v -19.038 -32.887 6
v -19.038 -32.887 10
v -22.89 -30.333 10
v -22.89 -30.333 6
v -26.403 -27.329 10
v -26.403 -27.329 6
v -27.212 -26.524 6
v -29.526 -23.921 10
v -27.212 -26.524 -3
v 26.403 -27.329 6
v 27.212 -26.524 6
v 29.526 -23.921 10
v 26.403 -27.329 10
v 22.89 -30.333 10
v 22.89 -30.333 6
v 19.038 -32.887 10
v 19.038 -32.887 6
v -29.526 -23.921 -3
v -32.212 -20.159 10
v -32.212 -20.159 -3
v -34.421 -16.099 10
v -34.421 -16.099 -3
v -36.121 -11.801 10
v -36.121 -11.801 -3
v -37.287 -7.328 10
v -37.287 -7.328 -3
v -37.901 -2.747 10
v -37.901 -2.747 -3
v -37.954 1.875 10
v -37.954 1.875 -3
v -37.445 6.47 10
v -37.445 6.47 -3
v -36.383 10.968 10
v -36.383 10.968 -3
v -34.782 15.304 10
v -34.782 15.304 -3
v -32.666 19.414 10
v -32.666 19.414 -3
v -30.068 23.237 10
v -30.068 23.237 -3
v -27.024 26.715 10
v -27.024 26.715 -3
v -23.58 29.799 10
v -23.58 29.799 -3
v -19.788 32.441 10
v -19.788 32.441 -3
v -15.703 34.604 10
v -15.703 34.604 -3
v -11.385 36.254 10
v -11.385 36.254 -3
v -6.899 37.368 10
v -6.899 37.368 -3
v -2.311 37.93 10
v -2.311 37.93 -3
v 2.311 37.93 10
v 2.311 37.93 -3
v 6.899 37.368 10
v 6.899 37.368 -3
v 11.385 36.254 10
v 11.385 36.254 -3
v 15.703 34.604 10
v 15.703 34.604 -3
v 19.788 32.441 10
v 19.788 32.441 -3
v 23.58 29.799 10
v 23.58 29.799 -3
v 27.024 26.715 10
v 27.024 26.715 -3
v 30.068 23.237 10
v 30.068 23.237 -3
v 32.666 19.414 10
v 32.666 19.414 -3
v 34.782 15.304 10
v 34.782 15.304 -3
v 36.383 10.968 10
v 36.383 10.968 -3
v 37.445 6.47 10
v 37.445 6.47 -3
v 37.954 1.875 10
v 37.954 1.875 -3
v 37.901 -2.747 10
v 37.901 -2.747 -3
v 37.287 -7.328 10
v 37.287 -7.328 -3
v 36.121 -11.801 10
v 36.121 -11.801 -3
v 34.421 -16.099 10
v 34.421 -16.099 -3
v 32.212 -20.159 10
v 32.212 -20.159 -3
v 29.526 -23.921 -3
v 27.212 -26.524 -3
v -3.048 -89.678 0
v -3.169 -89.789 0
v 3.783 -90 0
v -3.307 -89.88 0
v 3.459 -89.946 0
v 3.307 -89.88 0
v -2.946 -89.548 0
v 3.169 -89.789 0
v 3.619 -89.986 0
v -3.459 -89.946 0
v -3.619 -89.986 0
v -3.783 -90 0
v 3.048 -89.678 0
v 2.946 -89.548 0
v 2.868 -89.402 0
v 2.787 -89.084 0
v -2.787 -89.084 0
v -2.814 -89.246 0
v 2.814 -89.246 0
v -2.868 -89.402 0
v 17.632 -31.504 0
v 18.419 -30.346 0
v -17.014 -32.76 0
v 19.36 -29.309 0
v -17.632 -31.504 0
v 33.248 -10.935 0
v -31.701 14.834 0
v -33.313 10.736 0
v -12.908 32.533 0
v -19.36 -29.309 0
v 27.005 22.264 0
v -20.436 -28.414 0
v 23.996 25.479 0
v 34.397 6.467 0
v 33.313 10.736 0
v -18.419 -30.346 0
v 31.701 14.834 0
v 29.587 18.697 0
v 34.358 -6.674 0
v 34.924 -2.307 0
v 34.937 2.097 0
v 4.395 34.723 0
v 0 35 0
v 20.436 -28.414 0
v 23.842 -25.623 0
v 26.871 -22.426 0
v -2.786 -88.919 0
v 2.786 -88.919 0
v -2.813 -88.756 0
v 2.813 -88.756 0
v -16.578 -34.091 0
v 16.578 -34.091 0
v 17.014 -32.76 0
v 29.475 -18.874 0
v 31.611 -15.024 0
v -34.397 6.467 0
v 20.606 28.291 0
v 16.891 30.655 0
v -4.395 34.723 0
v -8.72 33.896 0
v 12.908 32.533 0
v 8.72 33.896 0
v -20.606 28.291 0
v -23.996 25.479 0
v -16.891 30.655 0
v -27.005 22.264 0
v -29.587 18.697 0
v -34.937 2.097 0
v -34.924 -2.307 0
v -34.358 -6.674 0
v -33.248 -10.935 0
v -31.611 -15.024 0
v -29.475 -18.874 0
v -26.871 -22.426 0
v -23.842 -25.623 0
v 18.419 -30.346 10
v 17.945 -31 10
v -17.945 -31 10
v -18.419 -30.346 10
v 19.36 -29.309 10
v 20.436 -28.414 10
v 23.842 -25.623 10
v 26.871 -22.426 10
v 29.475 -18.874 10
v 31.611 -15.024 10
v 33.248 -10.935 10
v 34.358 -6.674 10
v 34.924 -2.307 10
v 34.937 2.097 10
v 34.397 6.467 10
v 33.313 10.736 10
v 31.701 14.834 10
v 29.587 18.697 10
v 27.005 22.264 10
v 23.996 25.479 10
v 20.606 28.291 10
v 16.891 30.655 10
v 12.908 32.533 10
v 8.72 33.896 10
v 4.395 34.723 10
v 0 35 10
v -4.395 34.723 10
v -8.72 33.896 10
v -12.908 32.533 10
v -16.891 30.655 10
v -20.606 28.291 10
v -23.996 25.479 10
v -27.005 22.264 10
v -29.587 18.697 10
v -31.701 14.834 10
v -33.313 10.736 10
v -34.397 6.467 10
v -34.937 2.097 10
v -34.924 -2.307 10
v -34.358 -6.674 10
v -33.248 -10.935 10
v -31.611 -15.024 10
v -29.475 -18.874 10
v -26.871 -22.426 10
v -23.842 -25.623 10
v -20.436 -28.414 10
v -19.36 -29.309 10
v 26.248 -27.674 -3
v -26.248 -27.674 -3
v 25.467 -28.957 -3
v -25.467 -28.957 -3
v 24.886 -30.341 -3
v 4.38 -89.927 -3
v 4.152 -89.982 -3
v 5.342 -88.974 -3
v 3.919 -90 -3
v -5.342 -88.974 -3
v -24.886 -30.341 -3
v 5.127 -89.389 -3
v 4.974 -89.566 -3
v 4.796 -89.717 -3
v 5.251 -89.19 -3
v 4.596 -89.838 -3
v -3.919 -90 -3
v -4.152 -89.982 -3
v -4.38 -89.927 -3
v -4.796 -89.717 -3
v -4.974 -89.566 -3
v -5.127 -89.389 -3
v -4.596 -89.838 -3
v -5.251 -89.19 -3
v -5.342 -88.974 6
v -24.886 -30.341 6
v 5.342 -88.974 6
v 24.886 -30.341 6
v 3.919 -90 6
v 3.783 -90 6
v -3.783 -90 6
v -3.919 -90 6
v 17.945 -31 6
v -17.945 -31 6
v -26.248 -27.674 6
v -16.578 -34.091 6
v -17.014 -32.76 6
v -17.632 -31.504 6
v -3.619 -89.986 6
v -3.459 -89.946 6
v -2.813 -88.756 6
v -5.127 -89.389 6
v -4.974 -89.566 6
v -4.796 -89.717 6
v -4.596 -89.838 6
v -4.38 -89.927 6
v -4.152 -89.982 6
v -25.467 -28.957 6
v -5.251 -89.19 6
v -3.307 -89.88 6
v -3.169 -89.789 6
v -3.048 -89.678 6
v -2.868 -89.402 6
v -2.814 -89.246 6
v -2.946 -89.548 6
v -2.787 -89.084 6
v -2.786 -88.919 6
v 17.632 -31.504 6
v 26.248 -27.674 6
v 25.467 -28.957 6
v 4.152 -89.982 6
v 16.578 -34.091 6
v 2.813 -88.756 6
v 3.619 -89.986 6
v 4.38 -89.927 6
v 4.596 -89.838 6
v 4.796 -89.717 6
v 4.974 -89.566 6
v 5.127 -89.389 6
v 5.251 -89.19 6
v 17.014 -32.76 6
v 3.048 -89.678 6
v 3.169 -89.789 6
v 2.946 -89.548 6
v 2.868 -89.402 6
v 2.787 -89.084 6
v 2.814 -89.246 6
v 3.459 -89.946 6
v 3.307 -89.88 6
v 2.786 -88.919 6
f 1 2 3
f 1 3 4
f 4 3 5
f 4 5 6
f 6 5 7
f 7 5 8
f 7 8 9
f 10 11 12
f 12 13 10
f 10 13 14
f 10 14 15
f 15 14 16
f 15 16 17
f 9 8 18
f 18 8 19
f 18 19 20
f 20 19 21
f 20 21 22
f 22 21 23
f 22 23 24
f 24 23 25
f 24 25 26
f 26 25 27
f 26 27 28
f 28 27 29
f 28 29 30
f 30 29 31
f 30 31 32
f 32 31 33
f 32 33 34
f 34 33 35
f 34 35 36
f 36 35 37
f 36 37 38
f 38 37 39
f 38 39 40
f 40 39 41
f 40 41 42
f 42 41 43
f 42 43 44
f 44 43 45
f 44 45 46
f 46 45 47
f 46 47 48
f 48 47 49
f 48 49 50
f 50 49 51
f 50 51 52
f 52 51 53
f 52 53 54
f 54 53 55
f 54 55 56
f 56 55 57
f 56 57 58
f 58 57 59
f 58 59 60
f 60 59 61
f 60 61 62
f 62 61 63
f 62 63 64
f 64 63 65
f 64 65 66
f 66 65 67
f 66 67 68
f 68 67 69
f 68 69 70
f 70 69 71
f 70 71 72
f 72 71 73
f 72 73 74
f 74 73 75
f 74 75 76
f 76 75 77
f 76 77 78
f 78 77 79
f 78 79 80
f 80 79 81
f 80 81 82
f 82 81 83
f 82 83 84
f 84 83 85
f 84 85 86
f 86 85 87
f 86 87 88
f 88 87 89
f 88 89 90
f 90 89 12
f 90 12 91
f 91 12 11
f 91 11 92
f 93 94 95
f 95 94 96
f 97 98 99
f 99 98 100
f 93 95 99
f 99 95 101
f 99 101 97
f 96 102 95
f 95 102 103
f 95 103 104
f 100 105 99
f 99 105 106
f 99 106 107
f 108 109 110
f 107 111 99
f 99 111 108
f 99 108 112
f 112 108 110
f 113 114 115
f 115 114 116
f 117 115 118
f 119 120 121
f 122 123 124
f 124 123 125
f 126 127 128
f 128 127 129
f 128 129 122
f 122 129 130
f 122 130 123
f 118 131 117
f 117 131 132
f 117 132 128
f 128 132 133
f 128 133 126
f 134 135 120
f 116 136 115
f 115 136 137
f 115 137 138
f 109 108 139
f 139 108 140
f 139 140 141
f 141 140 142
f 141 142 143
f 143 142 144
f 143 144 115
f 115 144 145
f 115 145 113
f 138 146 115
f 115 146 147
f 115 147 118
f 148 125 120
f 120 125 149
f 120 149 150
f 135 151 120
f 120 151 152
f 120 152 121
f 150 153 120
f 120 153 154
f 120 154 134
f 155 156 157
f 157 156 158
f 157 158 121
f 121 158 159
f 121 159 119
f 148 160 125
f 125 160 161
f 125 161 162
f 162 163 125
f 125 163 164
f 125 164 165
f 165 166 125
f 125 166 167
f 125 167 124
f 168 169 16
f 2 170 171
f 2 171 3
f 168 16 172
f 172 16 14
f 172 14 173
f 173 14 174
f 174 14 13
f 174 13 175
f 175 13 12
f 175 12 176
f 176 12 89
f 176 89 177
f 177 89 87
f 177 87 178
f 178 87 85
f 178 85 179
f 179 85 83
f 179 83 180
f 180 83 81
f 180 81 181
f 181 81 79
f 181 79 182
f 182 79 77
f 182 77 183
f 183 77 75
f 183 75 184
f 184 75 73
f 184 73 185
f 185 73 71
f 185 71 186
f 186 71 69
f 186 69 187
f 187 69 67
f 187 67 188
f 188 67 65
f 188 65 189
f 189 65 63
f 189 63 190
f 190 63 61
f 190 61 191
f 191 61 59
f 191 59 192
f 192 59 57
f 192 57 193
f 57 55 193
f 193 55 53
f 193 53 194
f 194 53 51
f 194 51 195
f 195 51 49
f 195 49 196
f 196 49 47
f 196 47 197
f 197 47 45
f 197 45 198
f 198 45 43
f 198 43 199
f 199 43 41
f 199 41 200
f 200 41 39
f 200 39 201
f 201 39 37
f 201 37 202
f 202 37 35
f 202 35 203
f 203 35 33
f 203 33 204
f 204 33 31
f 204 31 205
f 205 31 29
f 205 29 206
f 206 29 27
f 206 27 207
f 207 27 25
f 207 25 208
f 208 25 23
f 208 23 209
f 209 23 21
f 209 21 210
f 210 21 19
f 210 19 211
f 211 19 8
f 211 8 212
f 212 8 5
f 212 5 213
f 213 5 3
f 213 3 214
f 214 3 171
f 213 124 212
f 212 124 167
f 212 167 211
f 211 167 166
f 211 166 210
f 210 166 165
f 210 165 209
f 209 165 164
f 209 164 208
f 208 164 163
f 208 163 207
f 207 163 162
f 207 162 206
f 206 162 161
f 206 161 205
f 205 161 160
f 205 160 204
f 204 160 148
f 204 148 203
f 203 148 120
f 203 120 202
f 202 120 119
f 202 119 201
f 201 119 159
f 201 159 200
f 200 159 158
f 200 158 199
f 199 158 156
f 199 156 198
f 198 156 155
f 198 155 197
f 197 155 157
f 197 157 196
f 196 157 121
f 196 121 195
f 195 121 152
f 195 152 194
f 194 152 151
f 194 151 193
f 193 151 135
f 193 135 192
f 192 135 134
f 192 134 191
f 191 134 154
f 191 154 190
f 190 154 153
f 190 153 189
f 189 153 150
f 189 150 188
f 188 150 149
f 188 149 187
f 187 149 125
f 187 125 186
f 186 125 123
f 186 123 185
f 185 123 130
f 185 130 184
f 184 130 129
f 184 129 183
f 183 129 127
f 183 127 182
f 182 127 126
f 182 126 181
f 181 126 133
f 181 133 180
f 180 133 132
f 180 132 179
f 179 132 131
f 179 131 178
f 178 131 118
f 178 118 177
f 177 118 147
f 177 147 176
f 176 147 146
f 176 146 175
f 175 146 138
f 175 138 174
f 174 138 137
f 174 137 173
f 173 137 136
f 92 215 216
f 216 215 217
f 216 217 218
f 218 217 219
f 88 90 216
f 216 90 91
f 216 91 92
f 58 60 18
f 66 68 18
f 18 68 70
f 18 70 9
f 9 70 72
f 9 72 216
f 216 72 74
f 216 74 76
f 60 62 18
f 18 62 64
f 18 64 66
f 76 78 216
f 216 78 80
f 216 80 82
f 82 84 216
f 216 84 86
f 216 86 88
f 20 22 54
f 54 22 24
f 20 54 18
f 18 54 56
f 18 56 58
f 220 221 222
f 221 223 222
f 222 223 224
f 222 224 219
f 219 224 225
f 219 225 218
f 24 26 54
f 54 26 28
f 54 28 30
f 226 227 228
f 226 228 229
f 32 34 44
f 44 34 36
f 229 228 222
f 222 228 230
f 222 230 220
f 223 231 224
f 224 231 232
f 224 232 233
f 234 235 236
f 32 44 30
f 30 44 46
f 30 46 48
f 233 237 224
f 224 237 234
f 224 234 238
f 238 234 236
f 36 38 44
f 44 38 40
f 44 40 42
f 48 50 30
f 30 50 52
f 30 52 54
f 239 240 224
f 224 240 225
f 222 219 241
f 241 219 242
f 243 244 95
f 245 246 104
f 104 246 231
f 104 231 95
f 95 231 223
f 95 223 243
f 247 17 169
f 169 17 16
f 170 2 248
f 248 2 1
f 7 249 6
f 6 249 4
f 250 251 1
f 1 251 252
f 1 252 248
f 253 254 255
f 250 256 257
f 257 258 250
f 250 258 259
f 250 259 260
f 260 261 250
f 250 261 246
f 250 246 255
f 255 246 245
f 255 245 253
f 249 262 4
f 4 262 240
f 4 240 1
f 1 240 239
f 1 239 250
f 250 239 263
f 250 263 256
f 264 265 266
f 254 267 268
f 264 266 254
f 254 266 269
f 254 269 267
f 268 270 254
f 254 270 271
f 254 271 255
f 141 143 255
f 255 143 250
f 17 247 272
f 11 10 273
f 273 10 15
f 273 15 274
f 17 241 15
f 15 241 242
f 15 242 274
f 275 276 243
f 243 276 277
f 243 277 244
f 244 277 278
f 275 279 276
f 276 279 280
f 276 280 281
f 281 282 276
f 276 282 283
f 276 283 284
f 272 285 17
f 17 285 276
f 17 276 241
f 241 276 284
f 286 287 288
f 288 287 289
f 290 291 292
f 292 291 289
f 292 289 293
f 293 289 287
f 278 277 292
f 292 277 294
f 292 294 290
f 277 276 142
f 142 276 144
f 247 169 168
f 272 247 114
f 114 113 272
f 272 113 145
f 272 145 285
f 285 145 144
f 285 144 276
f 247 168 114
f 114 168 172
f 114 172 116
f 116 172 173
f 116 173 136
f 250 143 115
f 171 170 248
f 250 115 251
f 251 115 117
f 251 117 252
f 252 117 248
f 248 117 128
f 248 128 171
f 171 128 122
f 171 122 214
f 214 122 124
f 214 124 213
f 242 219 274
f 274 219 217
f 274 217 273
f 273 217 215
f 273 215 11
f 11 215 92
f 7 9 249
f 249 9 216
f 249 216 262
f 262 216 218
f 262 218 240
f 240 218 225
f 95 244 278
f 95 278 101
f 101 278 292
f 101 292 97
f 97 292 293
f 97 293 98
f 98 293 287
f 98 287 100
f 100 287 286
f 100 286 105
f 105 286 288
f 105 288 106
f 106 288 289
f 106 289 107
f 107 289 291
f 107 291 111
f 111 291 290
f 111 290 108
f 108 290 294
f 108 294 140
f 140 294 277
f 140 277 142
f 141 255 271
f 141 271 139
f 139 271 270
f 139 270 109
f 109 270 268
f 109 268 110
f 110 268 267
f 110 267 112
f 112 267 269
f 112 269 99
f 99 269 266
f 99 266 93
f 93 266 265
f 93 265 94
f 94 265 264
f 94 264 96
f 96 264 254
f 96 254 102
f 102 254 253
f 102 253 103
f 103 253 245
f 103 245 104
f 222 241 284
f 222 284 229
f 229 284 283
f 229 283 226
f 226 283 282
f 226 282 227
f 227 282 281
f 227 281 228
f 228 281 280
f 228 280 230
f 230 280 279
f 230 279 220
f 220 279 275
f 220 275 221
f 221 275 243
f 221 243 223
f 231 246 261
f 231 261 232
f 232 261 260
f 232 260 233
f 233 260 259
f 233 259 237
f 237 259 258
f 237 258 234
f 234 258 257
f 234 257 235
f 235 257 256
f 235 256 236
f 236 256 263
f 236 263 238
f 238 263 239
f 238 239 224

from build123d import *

# Parameters (mm, degrees)
ESQUISSE1_R             = 38
ESQUISSE1_R_2           = 35
BOSS_EXTRU_1_DEPTH      = 10
BOSS_EXTRU_2_START      = 3
ESQUISSE2_R             = 38
BOSS_EXTRU_2_DEPTH      = 3
BOSS_EXTRU_3_DEPTH      = 3
ENL_V_MAT_EXTRU_1_DEPTH = 99.203869578
BOSS_EXTRU_4_DEPTH      = 6
CONG_1_R                = 10
CONG_3_R                = 1
CONG_4_R                = 1.5


with BuildPart() as part:
    # Esquisse1 → Boss.-Extru.1 (new body)
    with BuildSketch(Plane.XY):
        Circle(ESQUISSE1_R)
        Circle(ESQUISSE1_R_2, mode=Mode.SUBTRACT)
    extrude(amount=BOSS_EXTRU_1_DEPTH)

    # Esquisse2 → Boss.-Extru.2 (add)
    with BuildSketch(Plane(origin=(0, 0, 0), x_dir=(-1, 0, 0), z_dir=(0, 0, -1)).offset(BOSS_EXTRU_2_START)):
        Circle(ESQUISSE2_R)
    extrude(amount=-BOSS_EXTRU_2_DEPTH)

    # Esquisse3 → Boss.-Extru.3 (add)
    with BuildSketch(Plane.XY):
        Polygon((-5, -90), (5, -90), (25.656199867, -28.0314004), (-25.656199867, -28.0314004), align=None)
    extrude(amount=-BOSS_EXTRU_3_DEPTH)

    # Esquisse4 → Enlèv. mat.-Extru.1 (cut, through all)
    with BuildSketch(Plane.XY):
        Polygon((-19.037588305, -32.887235085), (-17.534620807, -30.29087442), (17.534620807, -30.29087442), (19.037588305, -32.887235085), (0, -90), align=None)
    extrude(amount=ENL_V_MAT_EXTRU_1_DEPTH, mode=Mode.SUBTRACT)

    # Esquisse5 → Boss.-Extru.4 (add)
    with BuildSketch(Plane.XY):
        Polygon((-5, -90), (-25.656199867, -28.0314004), (-17.534620807, -30.29087442), (-2.5, -90), align=None)
        Polygon((2.5, -90), (5, -90), (25.656199867, -28.0314004), (17.534620807, -30.29087442), align=None)
    extrude(amount=BOSS_EXTRU_4_DEPTH)

    # Congé1
    # the kernel refuses this fillet: 10 mm, written as the material it adds along each edge
    with BuildSketch(Plane(origin=(25.656199867, -28.0314004, 6), x_dir=(0.7181222649547252, 0.6959169581036918, 0), z_dir=(0, 0, -1)), Plane(origin=(-25.656199867, -28.0314004, -3), x_dir=(-0.7181222649547252, 0.6959169581036918, 0), z_dir=(0, 0, 1))) as cong_1_piece_1:
        with BuildLine():
            CenterArc((2.451539853, 9.995936135), CONG_1_R, 242.53528085, 25.831208482)
            Line((-2.160483484, 1.122986189), (0, 0))
            ThreePointArc((0, 0), (1.08323854, 0.015442687), (2.16647708, 0))
        make_face()
    extrude(amount=9)
    # the kernel refuses this fillet: 10 mm, written as the material it takes off along each edge
    with BuildSketch(Plane(origin=(17.534620807, -30.29087442, 0), x_dir=(0.8396660922433514, 0.5431029861239759, 0), z_dir=(0, 0, 1))) as cong_1_2_piece_1:
        with BuildLine():
            CenterArc((3.949343583, -9.987807165), CONG_1_R, 92.829659135, 40.142072995)
            Line((-2.867030927, -2.670906281), (0, 0))
            ThreePointArc((0, 0), (1.727837818, -0.042674924), (3.455675635, 0))
        make_face()
    extrude(amount=15.795919653, mode=Mode.SUBTRACT)
    with BuildSketch(Plane(origin=(-17.534620807, -30.29087442, 0), x_dir=(-0.839666092243352, 0.5431029861239753, 0), z_dir=(0, 0, 1))) as cong_1_2_piece_2:
        with BuildLine():
            CenterArc((3.949343583, 9.987807165), CONG_1_R, 227.028267869, 40.142072995)
            Line((-2.867030927, 2.670906281), (0, 0))
            ThreePointArc((0, 0), (1.727837818, 0.042674924), (3.455675635, 0))
        make_face()
    extrude(amount=15.795919653, mode=Mode.SUBTRACT)

    # Congé3
    cong_3_edges = [part.edges().sort_by_distance(p)[0] for p in [
        (-2.5, -90, 3),
        (2.5, -90, 3),
    ]]
    fillet(cong_3_edges, radius=CONG_3_R)

    # Congé4
    cong_4_edges = [part.edges().sort_by_distance(p)[0] for p in [
        (-5, -90, 1.5),
        (5, -90, 1.5),
    ]]
    fillet(cong_4_edges, radius=CONG_4_R)


solid = part.part
